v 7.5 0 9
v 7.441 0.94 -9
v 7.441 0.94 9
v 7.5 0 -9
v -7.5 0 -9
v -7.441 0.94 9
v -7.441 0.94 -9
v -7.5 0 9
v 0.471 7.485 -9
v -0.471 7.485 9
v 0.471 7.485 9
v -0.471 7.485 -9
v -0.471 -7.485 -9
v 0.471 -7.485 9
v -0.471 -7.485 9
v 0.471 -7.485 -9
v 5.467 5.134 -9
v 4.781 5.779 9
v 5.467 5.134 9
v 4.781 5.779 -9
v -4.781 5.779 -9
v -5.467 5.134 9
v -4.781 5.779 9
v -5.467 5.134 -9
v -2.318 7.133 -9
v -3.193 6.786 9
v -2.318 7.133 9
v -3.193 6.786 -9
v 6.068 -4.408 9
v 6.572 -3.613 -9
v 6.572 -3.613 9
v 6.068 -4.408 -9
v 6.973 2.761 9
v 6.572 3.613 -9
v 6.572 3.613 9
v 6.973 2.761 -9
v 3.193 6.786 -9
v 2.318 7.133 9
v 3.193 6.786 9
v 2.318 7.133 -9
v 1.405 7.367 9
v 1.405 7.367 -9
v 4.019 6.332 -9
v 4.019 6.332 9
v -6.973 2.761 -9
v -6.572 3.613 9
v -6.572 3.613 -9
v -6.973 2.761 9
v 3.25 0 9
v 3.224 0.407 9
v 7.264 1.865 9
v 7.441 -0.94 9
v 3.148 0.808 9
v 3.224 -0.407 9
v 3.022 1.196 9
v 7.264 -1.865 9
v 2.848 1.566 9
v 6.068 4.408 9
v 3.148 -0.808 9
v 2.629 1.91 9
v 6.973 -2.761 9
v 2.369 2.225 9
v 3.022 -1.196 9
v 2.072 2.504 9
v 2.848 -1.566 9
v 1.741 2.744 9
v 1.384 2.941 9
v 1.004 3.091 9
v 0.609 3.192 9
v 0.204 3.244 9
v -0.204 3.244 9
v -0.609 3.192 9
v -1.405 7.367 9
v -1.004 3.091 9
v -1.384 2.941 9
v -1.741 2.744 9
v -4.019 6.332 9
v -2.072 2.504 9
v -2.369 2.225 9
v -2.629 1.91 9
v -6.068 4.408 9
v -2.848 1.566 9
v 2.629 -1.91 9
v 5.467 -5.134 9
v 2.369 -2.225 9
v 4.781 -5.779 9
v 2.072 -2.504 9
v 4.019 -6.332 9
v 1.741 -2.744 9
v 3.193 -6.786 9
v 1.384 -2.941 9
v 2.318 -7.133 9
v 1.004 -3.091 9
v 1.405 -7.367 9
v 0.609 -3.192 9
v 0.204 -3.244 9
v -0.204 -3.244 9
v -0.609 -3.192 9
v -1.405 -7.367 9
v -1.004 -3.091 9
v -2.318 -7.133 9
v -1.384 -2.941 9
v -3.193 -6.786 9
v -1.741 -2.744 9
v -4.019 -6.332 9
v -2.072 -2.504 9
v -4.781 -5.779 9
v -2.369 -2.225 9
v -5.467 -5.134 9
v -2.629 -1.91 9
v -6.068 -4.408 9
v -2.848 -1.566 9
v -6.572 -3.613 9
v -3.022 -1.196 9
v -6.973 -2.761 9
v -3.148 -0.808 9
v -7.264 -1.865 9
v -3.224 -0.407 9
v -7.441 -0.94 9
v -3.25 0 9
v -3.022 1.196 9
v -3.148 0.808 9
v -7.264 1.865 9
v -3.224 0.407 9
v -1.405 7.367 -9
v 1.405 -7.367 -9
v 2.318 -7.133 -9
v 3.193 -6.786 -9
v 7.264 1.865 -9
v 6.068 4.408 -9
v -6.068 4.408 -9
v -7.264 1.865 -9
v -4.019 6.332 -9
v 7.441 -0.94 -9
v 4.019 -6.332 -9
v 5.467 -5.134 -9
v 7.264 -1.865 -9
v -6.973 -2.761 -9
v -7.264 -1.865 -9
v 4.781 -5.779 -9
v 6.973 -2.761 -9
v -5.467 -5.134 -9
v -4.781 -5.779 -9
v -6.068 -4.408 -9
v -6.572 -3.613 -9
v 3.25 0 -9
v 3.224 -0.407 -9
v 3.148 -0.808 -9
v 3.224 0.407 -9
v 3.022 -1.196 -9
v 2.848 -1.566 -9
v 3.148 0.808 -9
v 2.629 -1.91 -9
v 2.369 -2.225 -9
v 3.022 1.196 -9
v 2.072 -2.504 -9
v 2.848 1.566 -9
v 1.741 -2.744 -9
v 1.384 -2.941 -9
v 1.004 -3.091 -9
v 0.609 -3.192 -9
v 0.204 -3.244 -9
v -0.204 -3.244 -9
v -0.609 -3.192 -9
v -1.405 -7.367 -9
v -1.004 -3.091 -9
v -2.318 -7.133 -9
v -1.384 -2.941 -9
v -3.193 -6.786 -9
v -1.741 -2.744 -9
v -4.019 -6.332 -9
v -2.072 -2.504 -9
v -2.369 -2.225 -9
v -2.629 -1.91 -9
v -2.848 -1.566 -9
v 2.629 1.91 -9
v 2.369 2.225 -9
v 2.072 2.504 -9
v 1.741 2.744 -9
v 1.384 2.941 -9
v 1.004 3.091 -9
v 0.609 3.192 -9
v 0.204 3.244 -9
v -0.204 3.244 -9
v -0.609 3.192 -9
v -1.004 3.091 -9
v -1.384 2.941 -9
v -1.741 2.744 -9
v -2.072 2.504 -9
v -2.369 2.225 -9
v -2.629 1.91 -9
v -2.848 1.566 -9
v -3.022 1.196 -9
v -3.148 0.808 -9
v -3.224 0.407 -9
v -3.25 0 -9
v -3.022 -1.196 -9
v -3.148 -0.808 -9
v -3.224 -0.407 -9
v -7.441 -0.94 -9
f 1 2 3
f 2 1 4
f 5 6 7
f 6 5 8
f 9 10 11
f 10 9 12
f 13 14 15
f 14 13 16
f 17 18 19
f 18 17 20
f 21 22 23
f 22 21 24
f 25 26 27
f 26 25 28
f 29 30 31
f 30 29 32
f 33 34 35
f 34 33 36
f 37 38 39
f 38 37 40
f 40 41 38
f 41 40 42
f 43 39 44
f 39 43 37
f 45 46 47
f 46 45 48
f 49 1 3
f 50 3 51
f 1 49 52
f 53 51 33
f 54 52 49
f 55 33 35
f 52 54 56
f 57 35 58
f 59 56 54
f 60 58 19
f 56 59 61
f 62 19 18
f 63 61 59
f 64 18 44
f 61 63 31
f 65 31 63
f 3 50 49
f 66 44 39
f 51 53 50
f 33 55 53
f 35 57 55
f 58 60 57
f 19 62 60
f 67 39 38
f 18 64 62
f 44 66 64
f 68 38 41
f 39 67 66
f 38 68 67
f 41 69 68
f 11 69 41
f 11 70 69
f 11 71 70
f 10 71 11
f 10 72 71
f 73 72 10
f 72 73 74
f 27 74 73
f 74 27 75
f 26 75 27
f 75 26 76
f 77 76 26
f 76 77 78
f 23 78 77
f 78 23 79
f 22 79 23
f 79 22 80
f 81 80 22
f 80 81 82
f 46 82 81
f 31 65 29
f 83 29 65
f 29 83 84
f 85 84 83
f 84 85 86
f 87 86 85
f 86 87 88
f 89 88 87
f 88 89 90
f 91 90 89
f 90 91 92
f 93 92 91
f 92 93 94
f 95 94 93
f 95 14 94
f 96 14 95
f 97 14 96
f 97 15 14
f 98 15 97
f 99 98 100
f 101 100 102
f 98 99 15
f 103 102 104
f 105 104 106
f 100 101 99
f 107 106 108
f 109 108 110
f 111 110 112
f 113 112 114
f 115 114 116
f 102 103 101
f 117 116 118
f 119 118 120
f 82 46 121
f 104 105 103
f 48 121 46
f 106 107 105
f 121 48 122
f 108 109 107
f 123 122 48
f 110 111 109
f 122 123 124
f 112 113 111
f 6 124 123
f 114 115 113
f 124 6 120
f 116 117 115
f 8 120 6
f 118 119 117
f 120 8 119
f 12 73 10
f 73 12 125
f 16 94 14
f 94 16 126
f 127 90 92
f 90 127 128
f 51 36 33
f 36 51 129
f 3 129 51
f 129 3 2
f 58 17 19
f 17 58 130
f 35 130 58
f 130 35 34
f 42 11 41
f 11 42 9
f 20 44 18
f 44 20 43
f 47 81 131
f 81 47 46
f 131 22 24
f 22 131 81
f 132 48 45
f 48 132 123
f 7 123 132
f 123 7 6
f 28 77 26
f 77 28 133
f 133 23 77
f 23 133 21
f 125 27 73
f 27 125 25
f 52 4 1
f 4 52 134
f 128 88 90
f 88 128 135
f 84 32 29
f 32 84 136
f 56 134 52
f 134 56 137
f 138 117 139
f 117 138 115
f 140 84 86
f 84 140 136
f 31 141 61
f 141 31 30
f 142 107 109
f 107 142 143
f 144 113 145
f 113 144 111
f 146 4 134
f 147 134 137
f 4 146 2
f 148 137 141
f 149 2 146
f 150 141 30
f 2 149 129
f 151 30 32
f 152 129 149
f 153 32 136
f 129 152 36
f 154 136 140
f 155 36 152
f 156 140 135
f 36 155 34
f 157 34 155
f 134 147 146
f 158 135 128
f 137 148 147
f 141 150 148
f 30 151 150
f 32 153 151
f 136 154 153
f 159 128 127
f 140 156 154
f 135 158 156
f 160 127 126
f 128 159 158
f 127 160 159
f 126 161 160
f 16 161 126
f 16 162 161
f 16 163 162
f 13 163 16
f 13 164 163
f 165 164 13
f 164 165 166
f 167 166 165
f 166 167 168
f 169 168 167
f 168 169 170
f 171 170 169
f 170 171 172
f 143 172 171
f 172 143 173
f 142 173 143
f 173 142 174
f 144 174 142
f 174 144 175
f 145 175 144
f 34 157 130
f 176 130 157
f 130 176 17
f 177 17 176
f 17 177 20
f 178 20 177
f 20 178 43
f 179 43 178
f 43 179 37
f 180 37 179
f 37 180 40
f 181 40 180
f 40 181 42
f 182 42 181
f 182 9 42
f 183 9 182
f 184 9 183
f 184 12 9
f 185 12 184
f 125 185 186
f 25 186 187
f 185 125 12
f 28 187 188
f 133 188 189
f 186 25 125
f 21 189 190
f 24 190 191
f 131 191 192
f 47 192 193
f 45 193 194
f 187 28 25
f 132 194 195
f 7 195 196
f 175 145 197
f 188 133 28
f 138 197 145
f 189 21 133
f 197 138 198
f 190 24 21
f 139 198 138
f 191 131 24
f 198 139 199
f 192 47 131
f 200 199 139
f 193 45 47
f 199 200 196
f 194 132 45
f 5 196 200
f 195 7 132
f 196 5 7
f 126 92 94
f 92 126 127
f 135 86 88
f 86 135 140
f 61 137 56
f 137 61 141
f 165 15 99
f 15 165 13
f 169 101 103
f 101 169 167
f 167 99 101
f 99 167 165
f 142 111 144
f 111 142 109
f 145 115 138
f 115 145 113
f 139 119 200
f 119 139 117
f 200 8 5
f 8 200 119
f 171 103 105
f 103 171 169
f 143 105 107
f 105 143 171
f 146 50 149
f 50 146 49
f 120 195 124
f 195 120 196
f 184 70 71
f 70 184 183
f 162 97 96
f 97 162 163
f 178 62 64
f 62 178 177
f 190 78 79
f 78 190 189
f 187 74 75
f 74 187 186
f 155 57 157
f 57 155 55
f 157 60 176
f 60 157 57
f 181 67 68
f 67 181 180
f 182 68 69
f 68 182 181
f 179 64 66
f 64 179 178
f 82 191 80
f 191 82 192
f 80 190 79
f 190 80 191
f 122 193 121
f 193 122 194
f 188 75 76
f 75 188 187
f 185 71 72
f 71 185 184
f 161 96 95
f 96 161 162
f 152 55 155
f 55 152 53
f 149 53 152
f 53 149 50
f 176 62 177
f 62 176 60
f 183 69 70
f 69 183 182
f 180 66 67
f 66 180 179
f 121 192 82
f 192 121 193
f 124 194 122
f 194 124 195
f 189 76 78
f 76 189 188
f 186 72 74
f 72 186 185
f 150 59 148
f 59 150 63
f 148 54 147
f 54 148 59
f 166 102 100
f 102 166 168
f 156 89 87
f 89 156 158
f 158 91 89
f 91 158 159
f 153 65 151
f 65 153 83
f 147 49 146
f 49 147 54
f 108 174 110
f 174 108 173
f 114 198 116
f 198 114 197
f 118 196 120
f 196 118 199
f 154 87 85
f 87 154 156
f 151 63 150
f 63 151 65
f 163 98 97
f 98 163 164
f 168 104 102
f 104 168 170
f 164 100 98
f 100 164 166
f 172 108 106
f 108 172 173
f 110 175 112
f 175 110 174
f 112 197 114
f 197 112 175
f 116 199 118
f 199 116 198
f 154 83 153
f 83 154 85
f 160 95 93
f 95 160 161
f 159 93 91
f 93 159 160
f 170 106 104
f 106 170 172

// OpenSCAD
$fn = 50;


difference() {
	union() {
		translate(v = [0, 0, -9.0000000000]) {
			cylinder(h = 18, r = 7.5000000000);
		}
	}
	union() {
		translate(v = [0, 0, -100.0000000000]) {
			cylinder(h = 200, r = 3.2500000000);
		}
	}
}
